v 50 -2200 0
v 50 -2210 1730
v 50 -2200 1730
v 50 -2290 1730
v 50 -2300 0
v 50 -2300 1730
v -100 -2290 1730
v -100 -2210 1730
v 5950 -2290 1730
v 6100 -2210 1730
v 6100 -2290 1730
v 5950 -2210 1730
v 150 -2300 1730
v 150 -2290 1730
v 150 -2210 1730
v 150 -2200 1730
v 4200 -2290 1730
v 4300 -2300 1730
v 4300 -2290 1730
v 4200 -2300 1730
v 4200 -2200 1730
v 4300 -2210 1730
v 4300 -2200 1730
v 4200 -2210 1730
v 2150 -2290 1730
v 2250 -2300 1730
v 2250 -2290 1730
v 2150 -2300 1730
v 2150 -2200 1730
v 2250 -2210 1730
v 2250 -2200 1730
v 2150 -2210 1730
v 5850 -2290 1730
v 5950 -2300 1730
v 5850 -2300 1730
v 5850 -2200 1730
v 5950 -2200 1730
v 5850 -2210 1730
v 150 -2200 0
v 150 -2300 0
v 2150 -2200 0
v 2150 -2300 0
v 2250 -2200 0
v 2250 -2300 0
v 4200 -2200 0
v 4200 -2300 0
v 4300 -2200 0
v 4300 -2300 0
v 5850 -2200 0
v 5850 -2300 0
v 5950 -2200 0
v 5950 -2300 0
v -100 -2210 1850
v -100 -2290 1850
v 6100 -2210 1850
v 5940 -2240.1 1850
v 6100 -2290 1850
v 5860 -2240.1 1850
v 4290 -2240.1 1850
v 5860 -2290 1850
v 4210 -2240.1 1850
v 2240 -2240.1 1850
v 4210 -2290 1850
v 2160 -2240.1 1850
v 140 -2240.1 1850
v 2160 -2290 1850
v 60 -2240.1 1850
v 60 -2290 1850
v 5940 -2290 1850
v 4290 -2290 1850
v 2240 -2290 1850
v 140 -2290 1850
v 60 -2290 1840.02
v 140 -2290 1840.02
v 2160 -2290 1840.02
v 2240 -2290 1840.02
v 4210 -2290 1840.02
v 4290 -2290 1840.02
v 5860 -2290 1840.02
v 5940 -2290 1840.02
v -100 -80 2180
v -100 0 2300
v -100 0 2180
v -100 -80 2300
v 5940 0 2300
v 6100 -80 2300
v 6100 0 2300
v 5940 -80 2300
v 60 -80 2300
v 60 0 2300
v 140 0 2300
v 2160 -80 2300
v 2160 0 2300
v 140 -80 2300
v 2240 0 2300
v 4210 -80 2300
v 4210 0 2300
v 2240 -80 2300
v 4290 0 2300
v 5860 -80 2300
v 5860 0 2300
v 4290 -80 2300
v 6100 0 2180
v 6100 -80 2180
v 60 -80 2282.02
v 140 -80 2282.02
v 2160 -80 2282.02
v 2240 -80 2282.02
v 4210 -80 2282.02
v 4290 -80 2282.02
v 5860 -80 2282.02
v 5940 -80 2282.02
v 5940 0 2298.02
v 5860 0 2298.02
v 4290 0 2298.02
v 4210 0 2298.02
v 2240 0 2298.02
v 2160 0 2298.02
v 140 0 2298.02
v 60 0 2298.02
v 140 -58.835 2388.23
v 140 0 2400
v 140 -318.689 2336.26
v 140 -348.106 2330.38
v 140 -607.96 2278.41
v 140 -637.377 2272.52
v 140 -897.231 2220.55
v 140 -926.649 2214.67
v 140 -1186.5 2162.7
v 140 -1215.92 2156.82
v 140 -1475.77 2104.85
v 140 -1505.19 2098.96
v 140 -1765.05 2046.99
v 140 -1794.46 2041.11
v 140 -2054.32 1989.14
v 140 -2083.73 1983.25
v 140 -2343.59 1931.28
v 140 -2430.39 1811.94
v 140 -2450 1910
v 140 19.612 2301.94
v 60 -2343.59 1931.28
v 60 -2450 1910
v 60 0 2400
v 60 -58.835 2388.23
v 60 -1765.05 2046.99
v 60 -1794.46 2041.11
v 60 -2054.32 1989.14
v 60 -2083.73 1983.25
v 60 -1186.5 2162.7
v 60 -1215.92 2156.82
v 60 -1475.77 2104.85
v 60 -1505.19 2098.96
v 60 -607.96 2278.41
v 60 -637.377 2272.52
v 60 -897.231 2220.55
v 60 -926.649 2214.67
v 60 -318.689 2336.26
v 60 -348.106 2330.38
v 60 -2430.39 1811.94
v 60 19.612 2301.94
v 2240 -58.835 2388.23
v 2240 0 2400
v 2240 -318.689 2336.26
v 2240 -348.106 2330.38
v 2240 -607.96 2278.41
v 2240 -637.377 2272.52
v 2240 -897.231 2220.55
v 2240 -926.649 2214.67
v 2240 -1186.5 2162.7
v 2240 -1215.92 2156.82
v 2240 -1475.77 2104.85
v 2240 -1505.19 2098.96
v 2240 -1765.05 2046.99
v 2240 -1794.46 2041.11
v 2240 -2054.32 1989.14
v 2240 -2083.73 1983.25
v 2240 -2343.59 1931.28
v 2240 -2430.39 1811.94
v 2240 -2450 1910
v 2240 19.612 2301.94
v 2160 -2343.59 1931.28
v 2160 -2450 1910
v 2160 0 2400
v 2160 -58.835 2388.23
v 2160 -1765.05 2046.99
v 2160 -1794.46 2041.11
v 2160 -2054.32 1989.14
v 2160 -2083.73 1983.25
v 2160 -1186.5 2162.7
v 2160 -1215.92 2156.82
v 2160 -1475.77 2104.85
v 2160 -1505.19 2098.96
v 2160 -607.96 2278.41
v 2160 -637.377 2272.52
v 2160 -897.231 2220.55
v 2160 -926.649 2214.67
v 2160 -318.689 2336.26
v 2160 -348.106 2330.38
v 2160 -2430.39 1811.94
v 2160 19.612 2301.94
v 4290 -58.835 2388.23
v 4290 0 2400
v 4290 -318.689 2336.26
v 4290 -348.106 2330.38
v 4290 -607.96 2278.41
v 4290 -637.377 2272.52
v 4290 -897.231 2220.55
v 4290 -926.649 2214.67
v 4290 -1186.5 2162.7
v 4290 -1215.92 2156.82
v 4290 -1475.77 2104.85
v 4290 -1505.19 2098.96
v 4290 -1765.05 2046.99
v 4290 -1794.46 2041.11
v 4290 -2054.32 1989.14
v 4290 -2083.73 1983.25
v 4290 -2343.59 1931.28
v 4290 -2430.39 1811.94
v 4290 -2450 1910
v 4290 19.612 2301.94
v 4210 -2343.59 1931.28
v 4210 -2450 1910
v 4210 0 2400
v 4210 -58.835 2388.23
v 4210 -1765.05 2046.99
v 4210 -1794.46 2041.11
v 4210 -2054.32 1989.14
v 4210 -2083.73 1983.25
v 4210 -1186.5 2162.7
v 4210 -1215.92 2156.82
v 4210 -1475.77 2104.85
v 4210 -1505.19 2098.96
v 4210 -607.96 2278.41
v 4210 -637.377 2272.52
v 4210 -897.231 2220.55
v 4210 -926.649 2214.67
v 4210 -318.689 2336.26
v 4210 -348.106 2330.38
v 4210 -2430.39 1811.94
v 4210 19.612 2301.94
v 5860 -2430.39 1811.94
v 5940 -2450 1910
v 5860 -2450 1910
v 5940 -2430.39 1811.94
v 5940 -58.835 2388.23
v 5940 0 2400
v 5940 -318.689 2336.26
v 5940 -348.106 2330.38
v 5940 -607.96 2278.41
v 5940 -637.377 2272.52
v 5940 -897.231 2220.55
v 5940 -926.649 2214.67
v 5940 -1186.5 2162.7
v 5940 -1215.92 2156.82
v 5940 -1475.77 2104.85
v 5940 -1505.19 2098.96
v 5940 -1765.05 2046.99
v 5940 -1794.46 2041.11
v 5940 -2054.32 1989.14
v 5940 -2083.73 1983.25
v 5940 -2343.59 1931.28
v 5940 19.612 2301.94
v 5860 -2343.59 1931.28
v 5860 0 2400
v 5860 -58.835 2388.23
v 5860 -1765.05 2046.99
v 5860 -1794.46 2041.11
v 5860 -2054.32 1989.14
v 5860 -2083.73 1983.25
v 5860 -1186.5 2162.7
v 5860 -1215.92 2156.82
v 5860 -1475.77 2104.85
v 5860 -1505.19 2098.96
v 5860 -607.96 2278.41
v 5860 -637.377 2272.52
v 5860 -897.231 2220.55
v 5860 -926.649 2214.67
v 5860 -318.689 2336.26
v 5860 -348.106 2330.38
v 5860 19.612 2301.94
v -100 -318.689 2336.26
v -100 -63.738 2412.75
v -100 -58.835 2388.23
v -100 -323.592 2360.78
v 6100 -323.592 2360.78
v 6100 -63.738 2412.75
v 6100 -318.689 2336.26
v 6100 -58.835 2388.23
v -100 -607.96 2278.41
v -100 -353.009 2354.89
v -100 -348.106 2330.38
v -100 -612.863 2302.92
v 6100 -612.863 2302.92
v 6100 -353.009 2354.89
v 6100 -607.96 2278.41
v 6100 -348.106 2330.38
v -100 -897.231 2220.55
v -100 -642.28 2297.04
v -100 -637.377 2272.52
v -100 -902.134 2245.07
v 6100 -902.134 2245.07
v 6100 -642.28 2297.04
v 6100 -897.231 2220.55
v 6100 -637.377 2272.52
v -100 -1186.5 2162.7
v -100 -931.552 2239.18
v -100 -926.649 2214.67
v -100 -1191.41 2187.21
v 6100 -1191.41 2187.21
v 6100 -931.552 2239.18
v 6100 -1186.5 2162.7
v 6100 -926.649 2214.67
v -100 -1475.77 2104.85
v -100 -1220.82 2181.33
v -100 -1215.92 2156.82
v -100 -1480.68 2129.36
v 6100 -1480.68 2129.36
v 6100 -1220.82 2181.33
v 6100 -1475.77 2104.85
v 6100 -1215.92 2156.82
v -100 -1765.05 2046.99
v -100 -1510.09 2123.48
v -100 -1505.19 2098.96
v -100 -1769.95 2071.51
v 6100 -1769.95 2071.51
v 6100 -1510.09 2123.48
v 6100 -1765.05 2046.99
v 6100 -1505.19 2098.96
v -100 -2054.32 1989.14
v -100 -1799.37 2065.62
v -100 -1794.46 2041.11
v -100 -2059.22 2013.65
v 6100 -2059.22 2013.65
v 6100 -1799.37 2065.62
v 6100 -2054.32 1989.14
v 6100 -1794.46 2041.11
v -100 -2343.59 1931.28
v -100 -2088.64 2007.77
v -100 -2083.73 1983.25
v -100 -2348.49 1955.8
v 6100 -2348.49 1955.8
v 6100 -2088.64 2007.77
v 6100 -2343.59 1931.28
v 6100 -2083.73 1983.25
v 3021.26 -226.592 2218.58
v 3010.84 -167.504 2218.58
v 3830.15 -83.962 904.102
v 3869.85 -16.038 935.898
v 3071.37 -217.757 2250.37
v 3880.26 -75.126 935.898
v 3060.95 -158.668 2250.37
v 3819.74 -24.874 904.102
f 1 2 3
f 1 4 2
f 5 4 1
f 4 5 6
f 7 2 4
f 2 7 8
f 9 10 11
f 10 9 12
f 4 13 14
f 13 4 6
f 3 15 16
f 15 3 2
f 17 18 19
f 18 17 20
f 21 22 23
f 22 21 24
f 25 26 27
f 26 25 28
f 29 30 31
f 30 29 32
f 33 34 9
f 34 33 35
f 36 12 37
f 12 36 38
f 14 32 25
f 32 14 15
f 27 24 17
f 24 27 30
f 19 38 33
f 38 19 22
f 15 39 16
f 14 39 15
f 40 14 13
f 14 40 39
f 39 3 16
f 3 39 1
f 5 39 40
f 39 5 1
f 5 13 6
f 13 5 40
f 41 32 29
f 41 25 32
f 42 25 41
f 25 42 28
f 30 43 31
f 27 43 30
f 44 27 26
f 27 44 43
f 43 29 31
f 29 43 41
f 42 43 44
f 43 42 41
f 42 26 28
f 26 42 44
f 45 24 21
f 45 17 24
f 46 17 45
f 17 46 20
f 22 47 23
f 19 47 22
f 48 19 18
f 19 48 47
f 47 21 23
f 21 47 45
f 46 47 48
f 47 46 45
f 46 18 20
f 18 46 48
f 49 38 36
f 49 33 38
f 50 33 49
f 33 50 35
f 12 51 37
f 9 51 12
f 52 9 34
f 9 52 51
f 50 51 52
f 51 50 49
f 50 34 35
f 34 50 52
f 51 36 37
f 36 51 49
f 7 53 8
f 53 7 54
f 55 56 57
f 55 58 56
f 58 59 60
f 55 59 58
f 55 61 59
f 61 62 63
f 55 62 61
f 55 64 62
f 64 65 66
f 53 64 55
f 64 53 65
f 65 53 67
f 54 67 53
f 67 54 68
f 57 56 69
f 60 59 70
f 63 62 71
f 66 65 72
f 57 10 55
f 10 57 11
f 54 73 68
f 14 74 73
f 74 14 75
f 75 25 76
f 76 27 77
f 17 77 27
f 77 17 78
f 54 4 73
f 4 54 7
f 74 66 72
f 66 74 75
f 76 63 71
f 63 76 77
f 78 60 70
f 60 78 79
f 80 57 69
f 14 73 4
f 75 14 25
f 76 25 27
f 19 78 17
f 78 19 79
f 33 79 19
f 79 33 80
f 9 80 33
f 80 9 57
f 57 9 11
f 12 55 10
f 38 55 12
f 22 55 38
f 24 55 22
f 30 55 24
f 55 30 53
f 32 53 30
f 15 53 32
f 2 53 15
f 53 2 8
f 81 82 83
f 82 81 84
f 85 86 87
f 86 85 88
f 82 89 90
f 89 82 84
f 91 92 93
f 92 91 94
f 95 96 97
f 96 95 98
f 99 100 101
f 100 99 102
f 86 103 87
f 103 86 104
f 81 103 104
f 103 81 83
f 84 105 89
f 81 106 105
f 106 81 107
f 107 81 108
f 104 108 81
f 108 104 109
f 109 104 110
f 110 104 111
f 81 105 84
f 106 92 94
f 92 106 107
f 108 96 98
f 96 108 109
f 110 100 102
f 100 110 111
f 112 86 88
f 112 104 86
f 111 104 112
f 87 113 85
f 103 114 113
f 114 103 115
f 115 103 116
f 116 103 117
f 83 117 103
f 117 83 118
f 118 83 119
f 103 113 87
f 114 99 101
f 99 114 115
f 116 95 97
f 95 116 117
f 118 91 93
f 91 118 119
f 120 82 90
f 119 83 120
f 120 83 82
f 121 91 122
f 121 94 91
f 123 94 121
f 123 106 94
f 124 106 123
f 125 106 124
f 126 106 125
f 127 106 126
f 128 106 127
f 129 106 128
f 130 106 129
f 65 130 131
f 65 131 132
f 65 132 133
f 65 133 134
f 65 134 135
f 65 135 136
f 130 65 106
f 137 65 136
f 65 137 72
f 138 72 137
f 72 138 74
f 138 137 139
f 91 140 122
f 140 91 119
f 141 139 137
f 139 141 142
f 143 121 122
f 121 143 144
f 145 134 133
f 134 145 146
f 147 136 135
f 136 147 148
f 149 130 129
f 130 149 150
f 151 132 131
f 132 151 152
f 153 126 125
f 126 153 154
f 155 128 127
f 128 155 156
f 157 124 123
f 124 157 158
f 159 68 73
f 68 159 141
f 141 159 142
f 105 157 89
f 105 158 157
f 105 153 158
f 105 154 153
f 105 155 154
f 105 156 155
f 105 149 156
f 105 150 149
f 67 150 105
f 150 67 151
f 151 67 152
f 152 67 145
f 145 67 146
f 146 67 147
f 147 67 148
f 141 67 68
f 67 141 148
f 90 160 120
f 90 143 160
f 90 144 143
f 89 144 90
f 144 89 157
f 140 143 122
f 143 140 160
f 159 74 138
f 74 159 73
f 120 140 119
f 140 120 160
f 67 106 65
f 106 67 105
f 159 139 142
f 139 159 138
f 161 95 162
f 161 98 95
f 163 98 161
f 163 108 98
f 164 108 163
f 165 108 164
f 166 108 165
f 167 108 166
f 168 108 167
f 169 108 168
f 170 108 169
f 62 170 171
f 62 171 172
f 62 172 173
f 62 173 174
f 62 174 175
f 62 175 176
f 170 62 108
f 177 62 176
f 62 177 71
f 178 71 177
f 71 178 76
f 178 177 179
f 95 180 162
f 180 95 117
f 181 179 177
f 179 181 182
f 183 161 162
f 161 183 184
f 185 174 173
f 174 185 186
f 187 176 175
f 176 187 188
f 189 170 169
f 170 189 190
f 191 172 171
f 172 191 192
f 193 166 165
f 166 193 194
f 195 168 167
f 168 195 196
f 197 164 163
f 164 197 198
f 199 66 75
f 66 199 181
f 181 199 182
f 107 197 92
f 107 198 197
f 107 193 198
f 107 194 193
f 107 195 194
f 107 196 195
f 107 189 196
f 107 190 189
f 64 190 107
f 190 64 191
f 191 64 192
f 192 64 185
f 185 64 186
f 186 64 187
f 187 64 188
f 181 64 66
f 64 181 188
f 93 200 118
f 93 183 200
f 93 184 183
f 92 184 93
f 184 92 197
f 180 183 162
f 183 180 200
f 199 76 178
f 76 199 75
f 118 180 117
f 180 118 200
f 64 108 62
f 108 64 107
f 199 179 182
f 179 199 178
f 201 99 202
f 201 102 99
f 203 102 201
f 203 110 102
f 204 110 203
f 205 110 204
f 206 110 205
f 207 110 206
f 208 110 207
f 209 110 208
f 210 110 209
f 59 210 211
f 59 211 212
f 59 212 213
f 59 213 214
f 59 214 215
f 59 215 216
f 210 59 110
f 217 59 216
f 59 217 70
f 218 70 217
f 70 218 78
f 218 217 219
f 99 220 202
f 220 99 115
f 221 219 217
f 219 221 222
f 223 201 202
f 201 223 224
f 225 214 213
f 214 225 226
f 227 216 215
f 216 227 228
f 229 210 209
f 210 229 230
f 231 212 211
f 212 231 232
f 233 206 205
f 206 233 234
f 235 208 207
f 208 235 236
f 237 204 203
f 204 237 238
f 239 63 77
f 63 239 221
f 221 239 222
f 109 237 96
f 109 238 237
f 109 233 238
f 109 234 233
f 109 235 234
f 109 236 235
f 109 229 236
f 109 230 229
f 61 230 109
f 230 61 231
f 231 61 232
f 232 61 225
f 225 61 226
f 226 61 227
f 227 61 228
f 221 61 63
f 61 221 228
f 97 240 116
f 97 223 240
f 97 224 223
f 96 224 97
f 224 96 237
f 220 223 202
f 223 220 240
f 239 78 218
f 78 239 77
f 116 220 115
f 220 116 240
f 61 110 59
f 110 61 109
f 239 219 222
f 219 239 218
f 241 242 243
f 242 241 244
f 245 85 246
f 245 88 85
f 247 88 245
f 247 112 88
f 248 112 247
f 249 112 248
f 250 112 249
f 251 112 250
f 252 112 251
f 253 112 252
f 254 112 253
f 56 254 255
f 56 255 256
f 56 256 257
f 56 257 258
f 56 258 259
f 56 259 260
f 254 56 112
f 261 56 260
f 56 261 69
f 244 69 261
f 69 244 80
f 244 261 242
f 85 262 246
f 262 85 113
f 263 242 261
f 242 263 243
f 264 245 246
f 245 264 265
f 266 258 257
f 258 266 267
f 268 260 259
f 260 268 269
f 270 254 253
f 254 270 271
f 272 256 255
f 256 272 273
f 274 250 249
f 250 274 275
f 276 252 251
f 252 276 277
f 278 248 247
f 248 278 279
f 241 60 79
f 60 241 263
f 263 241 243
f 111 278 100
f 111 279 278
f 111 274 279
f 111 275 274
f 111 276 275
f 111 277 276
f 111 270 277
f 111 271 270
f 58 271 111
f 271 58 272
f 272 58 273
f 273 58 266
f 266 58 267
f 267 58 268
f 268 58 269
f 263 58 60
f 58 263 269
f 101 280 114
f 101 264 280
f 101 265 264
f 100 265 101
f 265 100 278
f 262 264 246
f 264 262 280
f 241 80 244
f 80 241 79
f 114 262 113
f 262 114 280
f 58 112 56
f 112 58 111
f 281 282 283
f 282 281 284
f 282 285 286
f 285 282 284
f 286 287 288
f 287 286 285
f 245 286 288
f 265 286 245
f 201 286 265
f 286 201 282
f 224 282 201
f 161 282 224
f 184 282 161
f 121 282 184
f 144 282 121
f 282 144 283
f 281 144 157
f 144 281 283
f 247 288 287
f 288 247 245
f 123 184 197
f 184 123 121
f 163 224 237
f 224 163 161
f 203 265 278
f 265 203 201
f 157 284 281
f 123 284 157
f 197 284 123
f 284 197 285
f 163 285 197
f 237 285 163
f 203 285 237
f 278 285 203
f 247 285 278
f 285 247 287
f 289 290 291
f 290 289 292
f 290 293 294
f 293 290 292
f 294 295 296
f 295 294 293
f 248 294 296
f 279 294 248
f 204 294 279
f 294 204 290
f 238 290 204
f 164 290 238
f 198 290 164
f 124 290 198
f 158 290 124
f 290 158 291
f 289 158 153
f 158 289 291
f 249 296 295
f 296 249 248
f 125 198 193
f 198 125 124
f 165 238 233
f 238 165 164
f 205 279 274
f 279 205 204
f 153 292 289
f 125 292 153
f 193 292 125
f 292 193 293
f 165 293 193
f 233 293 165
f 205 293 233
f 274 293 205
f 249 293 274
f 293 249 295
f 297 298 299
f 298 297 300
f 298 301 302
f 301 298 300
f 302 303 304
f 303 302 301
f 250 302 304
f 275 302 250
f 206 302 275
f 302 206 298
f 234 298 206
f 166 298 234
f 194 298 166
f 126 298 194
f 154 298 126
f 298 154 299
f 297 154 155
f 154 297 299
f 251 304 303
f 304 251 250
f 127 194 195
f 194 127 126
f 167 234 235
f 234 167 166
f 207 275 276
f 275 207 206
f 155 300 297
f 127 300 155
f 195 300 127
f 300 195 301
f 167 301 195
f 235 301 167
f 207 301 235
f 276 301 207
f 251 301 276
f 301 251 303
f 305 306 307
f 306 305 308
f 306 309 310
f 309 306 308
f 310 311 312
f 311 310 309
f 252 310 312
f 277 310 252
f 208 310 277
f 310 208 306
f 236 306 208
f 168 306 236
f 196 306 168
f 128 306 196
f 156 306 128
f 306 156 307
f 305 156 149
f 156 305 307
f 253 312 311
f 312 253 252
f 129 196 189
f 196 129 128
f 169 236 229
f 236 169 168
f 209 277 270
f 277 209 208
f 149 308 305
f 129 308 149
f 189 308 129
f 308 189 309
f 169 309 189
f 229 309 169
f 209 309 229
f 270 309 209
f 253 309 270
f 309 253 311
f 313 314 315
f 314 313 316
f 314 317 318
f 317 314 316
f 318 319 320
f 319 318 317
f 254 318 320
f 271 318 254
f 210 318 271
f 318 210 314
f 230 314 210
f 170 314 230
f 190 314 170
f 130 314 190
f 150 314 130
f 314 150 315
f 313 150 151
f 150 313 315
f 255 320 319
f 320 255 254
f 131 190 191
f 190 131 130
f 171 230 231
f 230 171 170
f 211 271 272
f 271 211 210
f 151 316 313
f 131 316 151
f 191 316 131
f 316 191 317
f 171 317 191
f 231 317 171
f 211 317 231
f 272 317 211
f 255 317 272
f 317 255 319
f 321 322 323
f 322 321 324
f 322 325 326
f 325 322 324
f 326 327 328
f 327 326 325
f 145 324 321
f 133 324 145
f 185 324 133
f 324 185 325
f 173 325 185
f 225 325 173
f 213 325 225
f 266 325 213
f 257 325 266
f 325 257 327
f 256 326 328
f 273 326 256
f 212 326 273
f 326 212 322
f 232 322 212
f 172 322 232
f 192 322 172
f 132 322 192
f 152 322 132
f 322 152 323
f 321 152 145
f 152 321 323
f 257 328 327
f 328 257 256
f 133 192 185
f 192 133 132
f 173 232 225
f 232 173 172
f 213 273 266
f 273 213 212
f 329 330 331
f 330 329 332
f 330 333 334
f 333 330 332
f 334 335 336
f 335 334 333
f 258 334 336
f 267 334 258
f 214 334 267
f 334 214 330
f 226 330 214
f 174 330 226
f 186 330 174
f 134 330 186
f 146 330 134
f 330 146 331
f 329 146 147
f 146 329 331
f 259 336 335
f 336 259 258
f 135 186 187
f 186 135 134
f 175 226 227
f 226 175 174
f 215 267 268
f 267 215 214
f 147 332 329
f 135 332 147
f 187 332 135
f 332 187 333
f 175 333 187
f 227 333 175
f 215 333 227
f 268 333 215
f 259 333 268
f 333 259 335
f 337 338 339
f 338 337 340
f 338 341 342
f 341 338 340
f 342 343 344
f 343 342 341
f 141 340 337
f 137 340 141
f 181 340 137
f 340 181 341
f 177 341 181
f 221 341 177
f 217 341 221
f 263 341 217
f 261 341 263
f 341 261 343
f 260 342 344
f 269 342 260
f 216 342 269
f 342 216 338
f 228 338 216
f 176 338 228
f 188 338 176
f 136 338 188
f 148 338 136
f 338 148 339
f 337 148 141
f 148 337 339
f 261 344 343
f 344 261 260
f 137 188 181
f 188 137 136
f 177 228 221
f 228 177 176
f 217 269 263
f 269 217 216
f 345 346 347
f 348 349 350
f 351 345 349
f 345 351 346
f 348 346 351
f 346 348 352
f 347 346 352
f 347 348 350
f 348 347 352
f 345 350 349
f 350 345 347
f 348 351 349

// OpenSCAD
// file: tea_shop_pergola_parameters.scad
// =============================================================================
// Tea Shop — GROUP 3: PERGOLA PARAMETERS
// -----------------------------------------------------------------------------
// All units: mm (1000 mm = 1.0 m), real-life scale.
// Shared global coordinate system (identical to Groups 1 & 2):
//   +X -> left -> right  (0 = left outer wall face, BUILD_W = right outer wall)
//   +Y -> front -> back  (0 = front eave wall face, BUILD_D = back wall)
//   +Z -> up             (0 = ground / plinth top datum)
//   Porch canopy extends in negative Y (forward, from Y = 0 to Y ≈ -2450 mm).
// =============================================================================

// --- SHARED GLOBAL VARIABLES (from Groups 1 & 2 — identical values) ----------
WALL_T  = 250;   // wall panel thickness                      (0.25 m)
BUILD_W = 6000;  // building width along X                    (6.00 m)
BUILD_D = 4000;  // building depth along Y                    (4.00 m)
BACK_H  = 3200;  // wall height at BACK (tall lean-to side)   (3.20 m)
FRONT_H = 2400;  // wall height at FRONT eave (short side)    (2.40 m)

// Group 1 alias names
wall_thickness    = WALL_T;
building_width    = BUILD_W;
building_depth    = BUILD_D;
back_height       = BACK_H;
front_eave_height = FRONT_H;

// Group 1 front opening & plinth references:
sill_height       = 900;   // knee-wall sill datum where brace foot rests (0.90 m)
base_front_margin = 3000;  // total front porch slab depth               (3.00 m)

// Group 2 roof slope derivation (pergola slope follows this exact angle):
ROOF_RISE  = BACK_H - FRONT_H;  // 800 mm
ROOF_RUN   = BUILD_D;            // 4000 mm
ROOF_ANGLE = atan(ROOF_RISE / ROOF_RUN); // ~11.3099°


// =============================================================================
// GROUP 3 PARAMETERS — Pergola Structure & Dimensions
// =============================================================================

// --- Post Cross-Section & Layout ---------------------------------------------
// REFERENCE NOTE: Posts are square timber (~100x100 mm), confirmed from
// wireframe (countryside-tea-shop-3d-model-9cc7378ff7.webp).
POST_SIZE = 100;  // square timber post dimension (100 mm × 100 mm) (0.10 m)

// Y coordinate of the front posts line:
// Placed at Y = -2250 mm (~75% forward across the 3.0 m porch slab),
// leaving ~750 mm open patio in front of posts as shown in reference renders.
POST_Y    = -2250;

// Array of 4 post positions [X, Y]:
// Derived from front elevation proportions:
//   - Post 1 (X=100)  : near left edge of pergola / bench area
//   - Post 2 (X=2200) : intermediate post subdividing wide 3.4m service window span
//   - Post 3 (X=4250) : positioned at mid-pier directly supporting signboard
//   - Post 4 (X=5900) : near right corner of pergola
PERGOLA_POST_POSITIONS = [
    [100,  POST_Y],  // Post 1: Front-Left
    [2200, POST_Y],  // Post 2: Front-Mid-Left
    [4250, POST_Y],  // Post 3: Front-Mid-Right (under "TEA SHOP" sign)
    [5900, POST_Y]   // Post 4: Front-Right
];

// --- Beam Dimensions ---------------------------------------------------------
MAIN_BEAM_WIDTH  = 80;   // thickness of header & ledger beams along Y (0.08 m)
MAIN_BEAM_HEIGHT = 120;  // vertical depth of header & ledger beams    (0.12 m)

// --- Cross Beams / Rafters ---------------------------------------------------
CROSS_BEAM_WIDTH  = 80;   // rafter timber thickness along X            (0.08 m)
CROSS_BEAM_HEIGHT = 100;  // rafter timber depth normal to slope        (0.10 m)

// Rafter X positions aligning directly over the 4 posts:
CROSS_BEAM_X_POSITIONS = [100, 2200, 4250, 5900];

// Sloped length of rafter from front wall (Y=0) to 200 mm past the posts:
CROSS_BEAM_SLOPE_LEN = (abs(POST_Y) + 200) / cos(ROOF_ANGLE);

// --- Pergola Slope Datum & Post Height Derivation ----------------------------
// The pergola roof slopes DOWNWARDS from the front wall eave (Y=0, Z=FRONT_H)
// toward the front posts (Y=POST_Y).
// Under the slope, the rafter top is at: FRONT_H - abs(POST_Y) * tan(ROOF_ANGLE).
// Below the rafters is the header beam (MAIN_BEAM_HEIGHT).
// Post tops touch the underside of the header beam:
PERGOLA_EAVE_Z = FRONT_H;
POST_HEIGHT    = PERGOLA_EAVE_Z - abs(POST_Y) * tan(ROOF_ANGLE) - CROSS_BEAM_HEIGHT - MAIN_BEAM_HEIGHT;

// --- Diagonal Prop Brace -----------------------------------------------------
// Single prop strut visible in window wireframe (8ffafd36e4.webp), anchoring
// near the counter sill and rising diagonally to the overhead rafter.
BRACE_WIDTH     = 60;   // diagonal brace width                       (0.06 m)
BRACE_THICKNESS = 60;   // diagonal brace thickness                   (0.06 m)
BRACE_LENGTH    = 1550; // length along diagonal strut axis           (1.55 m)
BRACE_ANGLE     = 32;   // angle of brace from vertical in degrees

// --- Slatted Roof Canopy (Planks) --------------------------------------------
// 8 flat timber planks running along X (spanning full width), arrayed along
// the slope from the front wall eave to cantilever slightly past the front posts.
SLAT_WIDTH        = 265;  // width of each individual wooden plank      (0.265 m)
SLAT_THICKNESS    = 25;   // thickness of timber plank                  (0.025 m)
SLAT_GAP          = 30;   // air gap between consecutive slats          (0.030 m)
SLAT_COUNT        = 8;    // count matching 8 planks visible in wireframe
SLAT_LENGTH       = 6200; // full span along X (covers 6000 mm + 100 mm side margins)
SLAT_START_OFFSET = 60;   // distance along slope from wall face to first slat (mm)
// file: tea_shop_pergola_modules.scad
// =============================================================================
// Tea Shop — GROUP 3: PERGOLA MODULE LIBRARY
// -----------------------------------------------------------------------------
// Defines all pergola part modules. Creates NO geometry on its own when
// included, allowing individual part_*.scad export files and the assembly
// preview file to include it cleanly.
//
// SHARED GLOBAL COORDINATE SYSTEM (identical to Groups 1 & 2):
//   +X -> left -> right  (0 = left outer wall face, BUILD_W = right outer wall)
//   +Y -> front -> back  (0 = front eave wall face, BUILD_D = back wall)
//   +Z -> up             (0 = ground / plinth top datum)
//   Porch canopy extends in negative Y (forward, from Y = 0 to Y ≈ -2450 mm).
//
// SLOPE CORRECTION:
//   Because the porch is in the negative Y direction (-Y), applying a POSITIVE
//   rotation `rotate([ROOF_ANGLE, 0, 0])` causes the coordinate `[0, -y, 0]`
//   to rotate DOWNWARD into negative Z: `Z = -y * sin(ROOF_ANGLE)`.
//   This ensures the pergola rafters and slats slope DOWNWARDS toward the front
//   posts, resting flush and continuous with the building's roof line.
//
// TODO: The hanging "TEA SHOP" sign and its mounting bracket (a later group)
//       will attach to the main header beam / roof slats near Post 3 (X=4250).
// TODO: The customer bench, stools, and water dispenser stand (later groups)
//       sit on the base slab beneath this pergola structure at Z=0.
// =============================================================================

include <tea_shop_pergola_parameters.scad>;


// =============================================================================
// MODULE 1: pergola_post()
// -----------------------------------------------------------------------------
// A single vertical square timber post modeled at the local origin:
//   Centred in X and Y ([-POST_SIZE/2 .. +POST_SIZE/2]), rising from Z=0
//   to Z=POST_HEIGHT (touching the underside of the front header beam).
// Instanced 4 times via translate() in assemble() — single reusable module.
// =============================================================================
module pergola_post() {
    translate([-POST_SIZE/2, -POST_SIZE/2, 0])
        cube([POST_SIZE, POST_SIZE, POST_HEIGHT]);
}


// =============================================================================
// MODULE 2: pergola_main_beam()
// -----------------------------------------------------------------------------
// The horizontal primary beam system:
//   1. Front header beam: spans across all 4 post tops at Y = POST_Y,
//      distributing load and directly supporting the sloped rafters.
//   2. Rear ledger beam: runs along the front wall eave (Y=0), supporting
//      the upper ends of the rafters.
// =============================================================================
module pergola_main_beam() {
    // 1. Front header beam resting directly on top of the front posts
    translate([-100, POST_Y - MAIN_BEAM_WIDTH/2, POST_HEIGHT])
        cube([BUILD_W + 200, MAIN_BEAM_WIDTH, MAIN_BEAM_HEIGHT]);

    // 2. Rear wall ledger beam anchored to the front wall below the eave
    translate([-100, -MAIN_BEAM_WIDTH, PERGOLA_EAVE_Z - MAIN_BEAM_HEIGHT - CROSS_BEAM_HEIGHT])
        cube([BUILD_W + 200, MAIN_BEAM_WIDTH, MAIN_BEAM_HEIGHT]);
}


// =============================================================================
// MODULE 3: pergola_diagonal_brace()
// -----------------------------------------------------------------------------
// A single diagonal timber brace modeled at local origin. Oriented at BRACE_ANGLE
// from vertical. Instanced at the service counter sill to support the overhead
// rafter beam, exactly as shown in the reference wireframe pass.
// =============================================================================
module pergola_diagonal_brace() {
    rotate([0, -BRACE_ANGLE, 10])
        translate([-BRACE_WIDTH/2, -BRACE_THICKNESS/2, 0])
            cube([BRACE_WIDTH, BRACE_THICKNESS, BRACE_LENGTH]);
}


// =============================================================================
// MODULE 4: pergola_cross_beam()
// -----------------------------------------------------------------------------
// A single sloped rafter running perpendicular to the building (in Y direction).
// Modeled at local origin (X=0) and sloped DOWNWARD at ROOF_ANGLE:
//   - Starts at the front wall ledger beam (Y=0)
//   - Slopes down to bear across the front header beam at POST_Y
//   - Projects 200 mm past the posts as an exposed rafter tail
// =============================================================================
module pergola_cross_beam() {
    translate([0, 0, PERGOLA_EAVE_Z])
        rotate([ROOF_ANGLE, 0, 0])
            translate([-CROSS_BEAM_WIDTH/2, -CROSS_BEAM_SLOPE_LEN, -CROSS_BEAM_HEIGHT])
                cube([CROSS_BEAM_WIDTH, CROSS_BEAM_SLOPE_LEN, CROSS_BEAM_HEIGHT]);
}


// =============================================================================
// MODULE 5: pergola_slat()
// -----------------------------------------------------------------------------
// A single flat timber canopy plank running along X (spanning the full width).
// Instanced and arrayed in assemble() via a for loop down the sloped plane,
// resting directly on top of the rafters.
// =============================================================================
module pergola_slat() {
    translate([-100, -SLAT_WIDTH, 0])
        cube([SLAT_LENGTH, SLAT_WIDTH, SLAT_THICKNESS]);
}


// =============================================================================
// ASSEMBLE MODULE — Visual verification preview (not for export)
// -----------------------------------------------------------------------------
// Press F5 in OpenSCAD to view all Group 3 pergola components together in color.
// For individual STL export, use the dedicated part_*.scad files.
// =============================================================================
module assemble() {
    // 1. Posts (4 instances positioned in shared global coordinates)
    color("SaddleBrown") {
        for (pos = PERGOLA_POST_POSITIONS) {
            translate([pos[0], pos[1], 0])
                pergola_post();
        }
    }

    // 2. Main horizontal beams (front header + rear ledger)
    color("Peru")
        pergola_main_beam();

    // 3. Cross beams / rafters (4 instances positioned over each post line)
    color("BurlyWood") {
        for (x = CROSS_BEAM_X_POSITIONS) {
            translate([x, 0, 0])
                pergola_cross_beam();
        }
    }

    // 4. Slatted canopy roof (8 flat planks arrayed along the slope)
    color("DarkGoldenrod") {
        for (i = [0 : SLAT_COUNT - 1]) {
            dist = SLAT_START_OFFSET + i * (SLAT_WIDTH + SLAT_GAP);
            translate([0, 0, PERGOLA_EAVE_Z])
                rotate([ROOF_ANGLE, 0, 0])
                    translate([0, -dist, 0])
                        pergola_slat();
        }
    }

    // 5. Diagonal prop brace (anchored at the service window counter sill)
    color("DarkSlateGray") {
        translate([3850, -50, sill_height + 20])
            pergola_diagonal_brace();
    }
}

// Default preview invocation:
assemble();
// main file
// =============================================================================
// part_pergola_diagonal_brace.scad — EXPORT THE DIAGONAL BRACE only.
// Press F6 (render), then export as STL.
// =============================================================================

include <tea_shop_pergola_modules.scad>;

translate([3850, -50, sill_height + 20])
    pergola_diagonal_brace();
